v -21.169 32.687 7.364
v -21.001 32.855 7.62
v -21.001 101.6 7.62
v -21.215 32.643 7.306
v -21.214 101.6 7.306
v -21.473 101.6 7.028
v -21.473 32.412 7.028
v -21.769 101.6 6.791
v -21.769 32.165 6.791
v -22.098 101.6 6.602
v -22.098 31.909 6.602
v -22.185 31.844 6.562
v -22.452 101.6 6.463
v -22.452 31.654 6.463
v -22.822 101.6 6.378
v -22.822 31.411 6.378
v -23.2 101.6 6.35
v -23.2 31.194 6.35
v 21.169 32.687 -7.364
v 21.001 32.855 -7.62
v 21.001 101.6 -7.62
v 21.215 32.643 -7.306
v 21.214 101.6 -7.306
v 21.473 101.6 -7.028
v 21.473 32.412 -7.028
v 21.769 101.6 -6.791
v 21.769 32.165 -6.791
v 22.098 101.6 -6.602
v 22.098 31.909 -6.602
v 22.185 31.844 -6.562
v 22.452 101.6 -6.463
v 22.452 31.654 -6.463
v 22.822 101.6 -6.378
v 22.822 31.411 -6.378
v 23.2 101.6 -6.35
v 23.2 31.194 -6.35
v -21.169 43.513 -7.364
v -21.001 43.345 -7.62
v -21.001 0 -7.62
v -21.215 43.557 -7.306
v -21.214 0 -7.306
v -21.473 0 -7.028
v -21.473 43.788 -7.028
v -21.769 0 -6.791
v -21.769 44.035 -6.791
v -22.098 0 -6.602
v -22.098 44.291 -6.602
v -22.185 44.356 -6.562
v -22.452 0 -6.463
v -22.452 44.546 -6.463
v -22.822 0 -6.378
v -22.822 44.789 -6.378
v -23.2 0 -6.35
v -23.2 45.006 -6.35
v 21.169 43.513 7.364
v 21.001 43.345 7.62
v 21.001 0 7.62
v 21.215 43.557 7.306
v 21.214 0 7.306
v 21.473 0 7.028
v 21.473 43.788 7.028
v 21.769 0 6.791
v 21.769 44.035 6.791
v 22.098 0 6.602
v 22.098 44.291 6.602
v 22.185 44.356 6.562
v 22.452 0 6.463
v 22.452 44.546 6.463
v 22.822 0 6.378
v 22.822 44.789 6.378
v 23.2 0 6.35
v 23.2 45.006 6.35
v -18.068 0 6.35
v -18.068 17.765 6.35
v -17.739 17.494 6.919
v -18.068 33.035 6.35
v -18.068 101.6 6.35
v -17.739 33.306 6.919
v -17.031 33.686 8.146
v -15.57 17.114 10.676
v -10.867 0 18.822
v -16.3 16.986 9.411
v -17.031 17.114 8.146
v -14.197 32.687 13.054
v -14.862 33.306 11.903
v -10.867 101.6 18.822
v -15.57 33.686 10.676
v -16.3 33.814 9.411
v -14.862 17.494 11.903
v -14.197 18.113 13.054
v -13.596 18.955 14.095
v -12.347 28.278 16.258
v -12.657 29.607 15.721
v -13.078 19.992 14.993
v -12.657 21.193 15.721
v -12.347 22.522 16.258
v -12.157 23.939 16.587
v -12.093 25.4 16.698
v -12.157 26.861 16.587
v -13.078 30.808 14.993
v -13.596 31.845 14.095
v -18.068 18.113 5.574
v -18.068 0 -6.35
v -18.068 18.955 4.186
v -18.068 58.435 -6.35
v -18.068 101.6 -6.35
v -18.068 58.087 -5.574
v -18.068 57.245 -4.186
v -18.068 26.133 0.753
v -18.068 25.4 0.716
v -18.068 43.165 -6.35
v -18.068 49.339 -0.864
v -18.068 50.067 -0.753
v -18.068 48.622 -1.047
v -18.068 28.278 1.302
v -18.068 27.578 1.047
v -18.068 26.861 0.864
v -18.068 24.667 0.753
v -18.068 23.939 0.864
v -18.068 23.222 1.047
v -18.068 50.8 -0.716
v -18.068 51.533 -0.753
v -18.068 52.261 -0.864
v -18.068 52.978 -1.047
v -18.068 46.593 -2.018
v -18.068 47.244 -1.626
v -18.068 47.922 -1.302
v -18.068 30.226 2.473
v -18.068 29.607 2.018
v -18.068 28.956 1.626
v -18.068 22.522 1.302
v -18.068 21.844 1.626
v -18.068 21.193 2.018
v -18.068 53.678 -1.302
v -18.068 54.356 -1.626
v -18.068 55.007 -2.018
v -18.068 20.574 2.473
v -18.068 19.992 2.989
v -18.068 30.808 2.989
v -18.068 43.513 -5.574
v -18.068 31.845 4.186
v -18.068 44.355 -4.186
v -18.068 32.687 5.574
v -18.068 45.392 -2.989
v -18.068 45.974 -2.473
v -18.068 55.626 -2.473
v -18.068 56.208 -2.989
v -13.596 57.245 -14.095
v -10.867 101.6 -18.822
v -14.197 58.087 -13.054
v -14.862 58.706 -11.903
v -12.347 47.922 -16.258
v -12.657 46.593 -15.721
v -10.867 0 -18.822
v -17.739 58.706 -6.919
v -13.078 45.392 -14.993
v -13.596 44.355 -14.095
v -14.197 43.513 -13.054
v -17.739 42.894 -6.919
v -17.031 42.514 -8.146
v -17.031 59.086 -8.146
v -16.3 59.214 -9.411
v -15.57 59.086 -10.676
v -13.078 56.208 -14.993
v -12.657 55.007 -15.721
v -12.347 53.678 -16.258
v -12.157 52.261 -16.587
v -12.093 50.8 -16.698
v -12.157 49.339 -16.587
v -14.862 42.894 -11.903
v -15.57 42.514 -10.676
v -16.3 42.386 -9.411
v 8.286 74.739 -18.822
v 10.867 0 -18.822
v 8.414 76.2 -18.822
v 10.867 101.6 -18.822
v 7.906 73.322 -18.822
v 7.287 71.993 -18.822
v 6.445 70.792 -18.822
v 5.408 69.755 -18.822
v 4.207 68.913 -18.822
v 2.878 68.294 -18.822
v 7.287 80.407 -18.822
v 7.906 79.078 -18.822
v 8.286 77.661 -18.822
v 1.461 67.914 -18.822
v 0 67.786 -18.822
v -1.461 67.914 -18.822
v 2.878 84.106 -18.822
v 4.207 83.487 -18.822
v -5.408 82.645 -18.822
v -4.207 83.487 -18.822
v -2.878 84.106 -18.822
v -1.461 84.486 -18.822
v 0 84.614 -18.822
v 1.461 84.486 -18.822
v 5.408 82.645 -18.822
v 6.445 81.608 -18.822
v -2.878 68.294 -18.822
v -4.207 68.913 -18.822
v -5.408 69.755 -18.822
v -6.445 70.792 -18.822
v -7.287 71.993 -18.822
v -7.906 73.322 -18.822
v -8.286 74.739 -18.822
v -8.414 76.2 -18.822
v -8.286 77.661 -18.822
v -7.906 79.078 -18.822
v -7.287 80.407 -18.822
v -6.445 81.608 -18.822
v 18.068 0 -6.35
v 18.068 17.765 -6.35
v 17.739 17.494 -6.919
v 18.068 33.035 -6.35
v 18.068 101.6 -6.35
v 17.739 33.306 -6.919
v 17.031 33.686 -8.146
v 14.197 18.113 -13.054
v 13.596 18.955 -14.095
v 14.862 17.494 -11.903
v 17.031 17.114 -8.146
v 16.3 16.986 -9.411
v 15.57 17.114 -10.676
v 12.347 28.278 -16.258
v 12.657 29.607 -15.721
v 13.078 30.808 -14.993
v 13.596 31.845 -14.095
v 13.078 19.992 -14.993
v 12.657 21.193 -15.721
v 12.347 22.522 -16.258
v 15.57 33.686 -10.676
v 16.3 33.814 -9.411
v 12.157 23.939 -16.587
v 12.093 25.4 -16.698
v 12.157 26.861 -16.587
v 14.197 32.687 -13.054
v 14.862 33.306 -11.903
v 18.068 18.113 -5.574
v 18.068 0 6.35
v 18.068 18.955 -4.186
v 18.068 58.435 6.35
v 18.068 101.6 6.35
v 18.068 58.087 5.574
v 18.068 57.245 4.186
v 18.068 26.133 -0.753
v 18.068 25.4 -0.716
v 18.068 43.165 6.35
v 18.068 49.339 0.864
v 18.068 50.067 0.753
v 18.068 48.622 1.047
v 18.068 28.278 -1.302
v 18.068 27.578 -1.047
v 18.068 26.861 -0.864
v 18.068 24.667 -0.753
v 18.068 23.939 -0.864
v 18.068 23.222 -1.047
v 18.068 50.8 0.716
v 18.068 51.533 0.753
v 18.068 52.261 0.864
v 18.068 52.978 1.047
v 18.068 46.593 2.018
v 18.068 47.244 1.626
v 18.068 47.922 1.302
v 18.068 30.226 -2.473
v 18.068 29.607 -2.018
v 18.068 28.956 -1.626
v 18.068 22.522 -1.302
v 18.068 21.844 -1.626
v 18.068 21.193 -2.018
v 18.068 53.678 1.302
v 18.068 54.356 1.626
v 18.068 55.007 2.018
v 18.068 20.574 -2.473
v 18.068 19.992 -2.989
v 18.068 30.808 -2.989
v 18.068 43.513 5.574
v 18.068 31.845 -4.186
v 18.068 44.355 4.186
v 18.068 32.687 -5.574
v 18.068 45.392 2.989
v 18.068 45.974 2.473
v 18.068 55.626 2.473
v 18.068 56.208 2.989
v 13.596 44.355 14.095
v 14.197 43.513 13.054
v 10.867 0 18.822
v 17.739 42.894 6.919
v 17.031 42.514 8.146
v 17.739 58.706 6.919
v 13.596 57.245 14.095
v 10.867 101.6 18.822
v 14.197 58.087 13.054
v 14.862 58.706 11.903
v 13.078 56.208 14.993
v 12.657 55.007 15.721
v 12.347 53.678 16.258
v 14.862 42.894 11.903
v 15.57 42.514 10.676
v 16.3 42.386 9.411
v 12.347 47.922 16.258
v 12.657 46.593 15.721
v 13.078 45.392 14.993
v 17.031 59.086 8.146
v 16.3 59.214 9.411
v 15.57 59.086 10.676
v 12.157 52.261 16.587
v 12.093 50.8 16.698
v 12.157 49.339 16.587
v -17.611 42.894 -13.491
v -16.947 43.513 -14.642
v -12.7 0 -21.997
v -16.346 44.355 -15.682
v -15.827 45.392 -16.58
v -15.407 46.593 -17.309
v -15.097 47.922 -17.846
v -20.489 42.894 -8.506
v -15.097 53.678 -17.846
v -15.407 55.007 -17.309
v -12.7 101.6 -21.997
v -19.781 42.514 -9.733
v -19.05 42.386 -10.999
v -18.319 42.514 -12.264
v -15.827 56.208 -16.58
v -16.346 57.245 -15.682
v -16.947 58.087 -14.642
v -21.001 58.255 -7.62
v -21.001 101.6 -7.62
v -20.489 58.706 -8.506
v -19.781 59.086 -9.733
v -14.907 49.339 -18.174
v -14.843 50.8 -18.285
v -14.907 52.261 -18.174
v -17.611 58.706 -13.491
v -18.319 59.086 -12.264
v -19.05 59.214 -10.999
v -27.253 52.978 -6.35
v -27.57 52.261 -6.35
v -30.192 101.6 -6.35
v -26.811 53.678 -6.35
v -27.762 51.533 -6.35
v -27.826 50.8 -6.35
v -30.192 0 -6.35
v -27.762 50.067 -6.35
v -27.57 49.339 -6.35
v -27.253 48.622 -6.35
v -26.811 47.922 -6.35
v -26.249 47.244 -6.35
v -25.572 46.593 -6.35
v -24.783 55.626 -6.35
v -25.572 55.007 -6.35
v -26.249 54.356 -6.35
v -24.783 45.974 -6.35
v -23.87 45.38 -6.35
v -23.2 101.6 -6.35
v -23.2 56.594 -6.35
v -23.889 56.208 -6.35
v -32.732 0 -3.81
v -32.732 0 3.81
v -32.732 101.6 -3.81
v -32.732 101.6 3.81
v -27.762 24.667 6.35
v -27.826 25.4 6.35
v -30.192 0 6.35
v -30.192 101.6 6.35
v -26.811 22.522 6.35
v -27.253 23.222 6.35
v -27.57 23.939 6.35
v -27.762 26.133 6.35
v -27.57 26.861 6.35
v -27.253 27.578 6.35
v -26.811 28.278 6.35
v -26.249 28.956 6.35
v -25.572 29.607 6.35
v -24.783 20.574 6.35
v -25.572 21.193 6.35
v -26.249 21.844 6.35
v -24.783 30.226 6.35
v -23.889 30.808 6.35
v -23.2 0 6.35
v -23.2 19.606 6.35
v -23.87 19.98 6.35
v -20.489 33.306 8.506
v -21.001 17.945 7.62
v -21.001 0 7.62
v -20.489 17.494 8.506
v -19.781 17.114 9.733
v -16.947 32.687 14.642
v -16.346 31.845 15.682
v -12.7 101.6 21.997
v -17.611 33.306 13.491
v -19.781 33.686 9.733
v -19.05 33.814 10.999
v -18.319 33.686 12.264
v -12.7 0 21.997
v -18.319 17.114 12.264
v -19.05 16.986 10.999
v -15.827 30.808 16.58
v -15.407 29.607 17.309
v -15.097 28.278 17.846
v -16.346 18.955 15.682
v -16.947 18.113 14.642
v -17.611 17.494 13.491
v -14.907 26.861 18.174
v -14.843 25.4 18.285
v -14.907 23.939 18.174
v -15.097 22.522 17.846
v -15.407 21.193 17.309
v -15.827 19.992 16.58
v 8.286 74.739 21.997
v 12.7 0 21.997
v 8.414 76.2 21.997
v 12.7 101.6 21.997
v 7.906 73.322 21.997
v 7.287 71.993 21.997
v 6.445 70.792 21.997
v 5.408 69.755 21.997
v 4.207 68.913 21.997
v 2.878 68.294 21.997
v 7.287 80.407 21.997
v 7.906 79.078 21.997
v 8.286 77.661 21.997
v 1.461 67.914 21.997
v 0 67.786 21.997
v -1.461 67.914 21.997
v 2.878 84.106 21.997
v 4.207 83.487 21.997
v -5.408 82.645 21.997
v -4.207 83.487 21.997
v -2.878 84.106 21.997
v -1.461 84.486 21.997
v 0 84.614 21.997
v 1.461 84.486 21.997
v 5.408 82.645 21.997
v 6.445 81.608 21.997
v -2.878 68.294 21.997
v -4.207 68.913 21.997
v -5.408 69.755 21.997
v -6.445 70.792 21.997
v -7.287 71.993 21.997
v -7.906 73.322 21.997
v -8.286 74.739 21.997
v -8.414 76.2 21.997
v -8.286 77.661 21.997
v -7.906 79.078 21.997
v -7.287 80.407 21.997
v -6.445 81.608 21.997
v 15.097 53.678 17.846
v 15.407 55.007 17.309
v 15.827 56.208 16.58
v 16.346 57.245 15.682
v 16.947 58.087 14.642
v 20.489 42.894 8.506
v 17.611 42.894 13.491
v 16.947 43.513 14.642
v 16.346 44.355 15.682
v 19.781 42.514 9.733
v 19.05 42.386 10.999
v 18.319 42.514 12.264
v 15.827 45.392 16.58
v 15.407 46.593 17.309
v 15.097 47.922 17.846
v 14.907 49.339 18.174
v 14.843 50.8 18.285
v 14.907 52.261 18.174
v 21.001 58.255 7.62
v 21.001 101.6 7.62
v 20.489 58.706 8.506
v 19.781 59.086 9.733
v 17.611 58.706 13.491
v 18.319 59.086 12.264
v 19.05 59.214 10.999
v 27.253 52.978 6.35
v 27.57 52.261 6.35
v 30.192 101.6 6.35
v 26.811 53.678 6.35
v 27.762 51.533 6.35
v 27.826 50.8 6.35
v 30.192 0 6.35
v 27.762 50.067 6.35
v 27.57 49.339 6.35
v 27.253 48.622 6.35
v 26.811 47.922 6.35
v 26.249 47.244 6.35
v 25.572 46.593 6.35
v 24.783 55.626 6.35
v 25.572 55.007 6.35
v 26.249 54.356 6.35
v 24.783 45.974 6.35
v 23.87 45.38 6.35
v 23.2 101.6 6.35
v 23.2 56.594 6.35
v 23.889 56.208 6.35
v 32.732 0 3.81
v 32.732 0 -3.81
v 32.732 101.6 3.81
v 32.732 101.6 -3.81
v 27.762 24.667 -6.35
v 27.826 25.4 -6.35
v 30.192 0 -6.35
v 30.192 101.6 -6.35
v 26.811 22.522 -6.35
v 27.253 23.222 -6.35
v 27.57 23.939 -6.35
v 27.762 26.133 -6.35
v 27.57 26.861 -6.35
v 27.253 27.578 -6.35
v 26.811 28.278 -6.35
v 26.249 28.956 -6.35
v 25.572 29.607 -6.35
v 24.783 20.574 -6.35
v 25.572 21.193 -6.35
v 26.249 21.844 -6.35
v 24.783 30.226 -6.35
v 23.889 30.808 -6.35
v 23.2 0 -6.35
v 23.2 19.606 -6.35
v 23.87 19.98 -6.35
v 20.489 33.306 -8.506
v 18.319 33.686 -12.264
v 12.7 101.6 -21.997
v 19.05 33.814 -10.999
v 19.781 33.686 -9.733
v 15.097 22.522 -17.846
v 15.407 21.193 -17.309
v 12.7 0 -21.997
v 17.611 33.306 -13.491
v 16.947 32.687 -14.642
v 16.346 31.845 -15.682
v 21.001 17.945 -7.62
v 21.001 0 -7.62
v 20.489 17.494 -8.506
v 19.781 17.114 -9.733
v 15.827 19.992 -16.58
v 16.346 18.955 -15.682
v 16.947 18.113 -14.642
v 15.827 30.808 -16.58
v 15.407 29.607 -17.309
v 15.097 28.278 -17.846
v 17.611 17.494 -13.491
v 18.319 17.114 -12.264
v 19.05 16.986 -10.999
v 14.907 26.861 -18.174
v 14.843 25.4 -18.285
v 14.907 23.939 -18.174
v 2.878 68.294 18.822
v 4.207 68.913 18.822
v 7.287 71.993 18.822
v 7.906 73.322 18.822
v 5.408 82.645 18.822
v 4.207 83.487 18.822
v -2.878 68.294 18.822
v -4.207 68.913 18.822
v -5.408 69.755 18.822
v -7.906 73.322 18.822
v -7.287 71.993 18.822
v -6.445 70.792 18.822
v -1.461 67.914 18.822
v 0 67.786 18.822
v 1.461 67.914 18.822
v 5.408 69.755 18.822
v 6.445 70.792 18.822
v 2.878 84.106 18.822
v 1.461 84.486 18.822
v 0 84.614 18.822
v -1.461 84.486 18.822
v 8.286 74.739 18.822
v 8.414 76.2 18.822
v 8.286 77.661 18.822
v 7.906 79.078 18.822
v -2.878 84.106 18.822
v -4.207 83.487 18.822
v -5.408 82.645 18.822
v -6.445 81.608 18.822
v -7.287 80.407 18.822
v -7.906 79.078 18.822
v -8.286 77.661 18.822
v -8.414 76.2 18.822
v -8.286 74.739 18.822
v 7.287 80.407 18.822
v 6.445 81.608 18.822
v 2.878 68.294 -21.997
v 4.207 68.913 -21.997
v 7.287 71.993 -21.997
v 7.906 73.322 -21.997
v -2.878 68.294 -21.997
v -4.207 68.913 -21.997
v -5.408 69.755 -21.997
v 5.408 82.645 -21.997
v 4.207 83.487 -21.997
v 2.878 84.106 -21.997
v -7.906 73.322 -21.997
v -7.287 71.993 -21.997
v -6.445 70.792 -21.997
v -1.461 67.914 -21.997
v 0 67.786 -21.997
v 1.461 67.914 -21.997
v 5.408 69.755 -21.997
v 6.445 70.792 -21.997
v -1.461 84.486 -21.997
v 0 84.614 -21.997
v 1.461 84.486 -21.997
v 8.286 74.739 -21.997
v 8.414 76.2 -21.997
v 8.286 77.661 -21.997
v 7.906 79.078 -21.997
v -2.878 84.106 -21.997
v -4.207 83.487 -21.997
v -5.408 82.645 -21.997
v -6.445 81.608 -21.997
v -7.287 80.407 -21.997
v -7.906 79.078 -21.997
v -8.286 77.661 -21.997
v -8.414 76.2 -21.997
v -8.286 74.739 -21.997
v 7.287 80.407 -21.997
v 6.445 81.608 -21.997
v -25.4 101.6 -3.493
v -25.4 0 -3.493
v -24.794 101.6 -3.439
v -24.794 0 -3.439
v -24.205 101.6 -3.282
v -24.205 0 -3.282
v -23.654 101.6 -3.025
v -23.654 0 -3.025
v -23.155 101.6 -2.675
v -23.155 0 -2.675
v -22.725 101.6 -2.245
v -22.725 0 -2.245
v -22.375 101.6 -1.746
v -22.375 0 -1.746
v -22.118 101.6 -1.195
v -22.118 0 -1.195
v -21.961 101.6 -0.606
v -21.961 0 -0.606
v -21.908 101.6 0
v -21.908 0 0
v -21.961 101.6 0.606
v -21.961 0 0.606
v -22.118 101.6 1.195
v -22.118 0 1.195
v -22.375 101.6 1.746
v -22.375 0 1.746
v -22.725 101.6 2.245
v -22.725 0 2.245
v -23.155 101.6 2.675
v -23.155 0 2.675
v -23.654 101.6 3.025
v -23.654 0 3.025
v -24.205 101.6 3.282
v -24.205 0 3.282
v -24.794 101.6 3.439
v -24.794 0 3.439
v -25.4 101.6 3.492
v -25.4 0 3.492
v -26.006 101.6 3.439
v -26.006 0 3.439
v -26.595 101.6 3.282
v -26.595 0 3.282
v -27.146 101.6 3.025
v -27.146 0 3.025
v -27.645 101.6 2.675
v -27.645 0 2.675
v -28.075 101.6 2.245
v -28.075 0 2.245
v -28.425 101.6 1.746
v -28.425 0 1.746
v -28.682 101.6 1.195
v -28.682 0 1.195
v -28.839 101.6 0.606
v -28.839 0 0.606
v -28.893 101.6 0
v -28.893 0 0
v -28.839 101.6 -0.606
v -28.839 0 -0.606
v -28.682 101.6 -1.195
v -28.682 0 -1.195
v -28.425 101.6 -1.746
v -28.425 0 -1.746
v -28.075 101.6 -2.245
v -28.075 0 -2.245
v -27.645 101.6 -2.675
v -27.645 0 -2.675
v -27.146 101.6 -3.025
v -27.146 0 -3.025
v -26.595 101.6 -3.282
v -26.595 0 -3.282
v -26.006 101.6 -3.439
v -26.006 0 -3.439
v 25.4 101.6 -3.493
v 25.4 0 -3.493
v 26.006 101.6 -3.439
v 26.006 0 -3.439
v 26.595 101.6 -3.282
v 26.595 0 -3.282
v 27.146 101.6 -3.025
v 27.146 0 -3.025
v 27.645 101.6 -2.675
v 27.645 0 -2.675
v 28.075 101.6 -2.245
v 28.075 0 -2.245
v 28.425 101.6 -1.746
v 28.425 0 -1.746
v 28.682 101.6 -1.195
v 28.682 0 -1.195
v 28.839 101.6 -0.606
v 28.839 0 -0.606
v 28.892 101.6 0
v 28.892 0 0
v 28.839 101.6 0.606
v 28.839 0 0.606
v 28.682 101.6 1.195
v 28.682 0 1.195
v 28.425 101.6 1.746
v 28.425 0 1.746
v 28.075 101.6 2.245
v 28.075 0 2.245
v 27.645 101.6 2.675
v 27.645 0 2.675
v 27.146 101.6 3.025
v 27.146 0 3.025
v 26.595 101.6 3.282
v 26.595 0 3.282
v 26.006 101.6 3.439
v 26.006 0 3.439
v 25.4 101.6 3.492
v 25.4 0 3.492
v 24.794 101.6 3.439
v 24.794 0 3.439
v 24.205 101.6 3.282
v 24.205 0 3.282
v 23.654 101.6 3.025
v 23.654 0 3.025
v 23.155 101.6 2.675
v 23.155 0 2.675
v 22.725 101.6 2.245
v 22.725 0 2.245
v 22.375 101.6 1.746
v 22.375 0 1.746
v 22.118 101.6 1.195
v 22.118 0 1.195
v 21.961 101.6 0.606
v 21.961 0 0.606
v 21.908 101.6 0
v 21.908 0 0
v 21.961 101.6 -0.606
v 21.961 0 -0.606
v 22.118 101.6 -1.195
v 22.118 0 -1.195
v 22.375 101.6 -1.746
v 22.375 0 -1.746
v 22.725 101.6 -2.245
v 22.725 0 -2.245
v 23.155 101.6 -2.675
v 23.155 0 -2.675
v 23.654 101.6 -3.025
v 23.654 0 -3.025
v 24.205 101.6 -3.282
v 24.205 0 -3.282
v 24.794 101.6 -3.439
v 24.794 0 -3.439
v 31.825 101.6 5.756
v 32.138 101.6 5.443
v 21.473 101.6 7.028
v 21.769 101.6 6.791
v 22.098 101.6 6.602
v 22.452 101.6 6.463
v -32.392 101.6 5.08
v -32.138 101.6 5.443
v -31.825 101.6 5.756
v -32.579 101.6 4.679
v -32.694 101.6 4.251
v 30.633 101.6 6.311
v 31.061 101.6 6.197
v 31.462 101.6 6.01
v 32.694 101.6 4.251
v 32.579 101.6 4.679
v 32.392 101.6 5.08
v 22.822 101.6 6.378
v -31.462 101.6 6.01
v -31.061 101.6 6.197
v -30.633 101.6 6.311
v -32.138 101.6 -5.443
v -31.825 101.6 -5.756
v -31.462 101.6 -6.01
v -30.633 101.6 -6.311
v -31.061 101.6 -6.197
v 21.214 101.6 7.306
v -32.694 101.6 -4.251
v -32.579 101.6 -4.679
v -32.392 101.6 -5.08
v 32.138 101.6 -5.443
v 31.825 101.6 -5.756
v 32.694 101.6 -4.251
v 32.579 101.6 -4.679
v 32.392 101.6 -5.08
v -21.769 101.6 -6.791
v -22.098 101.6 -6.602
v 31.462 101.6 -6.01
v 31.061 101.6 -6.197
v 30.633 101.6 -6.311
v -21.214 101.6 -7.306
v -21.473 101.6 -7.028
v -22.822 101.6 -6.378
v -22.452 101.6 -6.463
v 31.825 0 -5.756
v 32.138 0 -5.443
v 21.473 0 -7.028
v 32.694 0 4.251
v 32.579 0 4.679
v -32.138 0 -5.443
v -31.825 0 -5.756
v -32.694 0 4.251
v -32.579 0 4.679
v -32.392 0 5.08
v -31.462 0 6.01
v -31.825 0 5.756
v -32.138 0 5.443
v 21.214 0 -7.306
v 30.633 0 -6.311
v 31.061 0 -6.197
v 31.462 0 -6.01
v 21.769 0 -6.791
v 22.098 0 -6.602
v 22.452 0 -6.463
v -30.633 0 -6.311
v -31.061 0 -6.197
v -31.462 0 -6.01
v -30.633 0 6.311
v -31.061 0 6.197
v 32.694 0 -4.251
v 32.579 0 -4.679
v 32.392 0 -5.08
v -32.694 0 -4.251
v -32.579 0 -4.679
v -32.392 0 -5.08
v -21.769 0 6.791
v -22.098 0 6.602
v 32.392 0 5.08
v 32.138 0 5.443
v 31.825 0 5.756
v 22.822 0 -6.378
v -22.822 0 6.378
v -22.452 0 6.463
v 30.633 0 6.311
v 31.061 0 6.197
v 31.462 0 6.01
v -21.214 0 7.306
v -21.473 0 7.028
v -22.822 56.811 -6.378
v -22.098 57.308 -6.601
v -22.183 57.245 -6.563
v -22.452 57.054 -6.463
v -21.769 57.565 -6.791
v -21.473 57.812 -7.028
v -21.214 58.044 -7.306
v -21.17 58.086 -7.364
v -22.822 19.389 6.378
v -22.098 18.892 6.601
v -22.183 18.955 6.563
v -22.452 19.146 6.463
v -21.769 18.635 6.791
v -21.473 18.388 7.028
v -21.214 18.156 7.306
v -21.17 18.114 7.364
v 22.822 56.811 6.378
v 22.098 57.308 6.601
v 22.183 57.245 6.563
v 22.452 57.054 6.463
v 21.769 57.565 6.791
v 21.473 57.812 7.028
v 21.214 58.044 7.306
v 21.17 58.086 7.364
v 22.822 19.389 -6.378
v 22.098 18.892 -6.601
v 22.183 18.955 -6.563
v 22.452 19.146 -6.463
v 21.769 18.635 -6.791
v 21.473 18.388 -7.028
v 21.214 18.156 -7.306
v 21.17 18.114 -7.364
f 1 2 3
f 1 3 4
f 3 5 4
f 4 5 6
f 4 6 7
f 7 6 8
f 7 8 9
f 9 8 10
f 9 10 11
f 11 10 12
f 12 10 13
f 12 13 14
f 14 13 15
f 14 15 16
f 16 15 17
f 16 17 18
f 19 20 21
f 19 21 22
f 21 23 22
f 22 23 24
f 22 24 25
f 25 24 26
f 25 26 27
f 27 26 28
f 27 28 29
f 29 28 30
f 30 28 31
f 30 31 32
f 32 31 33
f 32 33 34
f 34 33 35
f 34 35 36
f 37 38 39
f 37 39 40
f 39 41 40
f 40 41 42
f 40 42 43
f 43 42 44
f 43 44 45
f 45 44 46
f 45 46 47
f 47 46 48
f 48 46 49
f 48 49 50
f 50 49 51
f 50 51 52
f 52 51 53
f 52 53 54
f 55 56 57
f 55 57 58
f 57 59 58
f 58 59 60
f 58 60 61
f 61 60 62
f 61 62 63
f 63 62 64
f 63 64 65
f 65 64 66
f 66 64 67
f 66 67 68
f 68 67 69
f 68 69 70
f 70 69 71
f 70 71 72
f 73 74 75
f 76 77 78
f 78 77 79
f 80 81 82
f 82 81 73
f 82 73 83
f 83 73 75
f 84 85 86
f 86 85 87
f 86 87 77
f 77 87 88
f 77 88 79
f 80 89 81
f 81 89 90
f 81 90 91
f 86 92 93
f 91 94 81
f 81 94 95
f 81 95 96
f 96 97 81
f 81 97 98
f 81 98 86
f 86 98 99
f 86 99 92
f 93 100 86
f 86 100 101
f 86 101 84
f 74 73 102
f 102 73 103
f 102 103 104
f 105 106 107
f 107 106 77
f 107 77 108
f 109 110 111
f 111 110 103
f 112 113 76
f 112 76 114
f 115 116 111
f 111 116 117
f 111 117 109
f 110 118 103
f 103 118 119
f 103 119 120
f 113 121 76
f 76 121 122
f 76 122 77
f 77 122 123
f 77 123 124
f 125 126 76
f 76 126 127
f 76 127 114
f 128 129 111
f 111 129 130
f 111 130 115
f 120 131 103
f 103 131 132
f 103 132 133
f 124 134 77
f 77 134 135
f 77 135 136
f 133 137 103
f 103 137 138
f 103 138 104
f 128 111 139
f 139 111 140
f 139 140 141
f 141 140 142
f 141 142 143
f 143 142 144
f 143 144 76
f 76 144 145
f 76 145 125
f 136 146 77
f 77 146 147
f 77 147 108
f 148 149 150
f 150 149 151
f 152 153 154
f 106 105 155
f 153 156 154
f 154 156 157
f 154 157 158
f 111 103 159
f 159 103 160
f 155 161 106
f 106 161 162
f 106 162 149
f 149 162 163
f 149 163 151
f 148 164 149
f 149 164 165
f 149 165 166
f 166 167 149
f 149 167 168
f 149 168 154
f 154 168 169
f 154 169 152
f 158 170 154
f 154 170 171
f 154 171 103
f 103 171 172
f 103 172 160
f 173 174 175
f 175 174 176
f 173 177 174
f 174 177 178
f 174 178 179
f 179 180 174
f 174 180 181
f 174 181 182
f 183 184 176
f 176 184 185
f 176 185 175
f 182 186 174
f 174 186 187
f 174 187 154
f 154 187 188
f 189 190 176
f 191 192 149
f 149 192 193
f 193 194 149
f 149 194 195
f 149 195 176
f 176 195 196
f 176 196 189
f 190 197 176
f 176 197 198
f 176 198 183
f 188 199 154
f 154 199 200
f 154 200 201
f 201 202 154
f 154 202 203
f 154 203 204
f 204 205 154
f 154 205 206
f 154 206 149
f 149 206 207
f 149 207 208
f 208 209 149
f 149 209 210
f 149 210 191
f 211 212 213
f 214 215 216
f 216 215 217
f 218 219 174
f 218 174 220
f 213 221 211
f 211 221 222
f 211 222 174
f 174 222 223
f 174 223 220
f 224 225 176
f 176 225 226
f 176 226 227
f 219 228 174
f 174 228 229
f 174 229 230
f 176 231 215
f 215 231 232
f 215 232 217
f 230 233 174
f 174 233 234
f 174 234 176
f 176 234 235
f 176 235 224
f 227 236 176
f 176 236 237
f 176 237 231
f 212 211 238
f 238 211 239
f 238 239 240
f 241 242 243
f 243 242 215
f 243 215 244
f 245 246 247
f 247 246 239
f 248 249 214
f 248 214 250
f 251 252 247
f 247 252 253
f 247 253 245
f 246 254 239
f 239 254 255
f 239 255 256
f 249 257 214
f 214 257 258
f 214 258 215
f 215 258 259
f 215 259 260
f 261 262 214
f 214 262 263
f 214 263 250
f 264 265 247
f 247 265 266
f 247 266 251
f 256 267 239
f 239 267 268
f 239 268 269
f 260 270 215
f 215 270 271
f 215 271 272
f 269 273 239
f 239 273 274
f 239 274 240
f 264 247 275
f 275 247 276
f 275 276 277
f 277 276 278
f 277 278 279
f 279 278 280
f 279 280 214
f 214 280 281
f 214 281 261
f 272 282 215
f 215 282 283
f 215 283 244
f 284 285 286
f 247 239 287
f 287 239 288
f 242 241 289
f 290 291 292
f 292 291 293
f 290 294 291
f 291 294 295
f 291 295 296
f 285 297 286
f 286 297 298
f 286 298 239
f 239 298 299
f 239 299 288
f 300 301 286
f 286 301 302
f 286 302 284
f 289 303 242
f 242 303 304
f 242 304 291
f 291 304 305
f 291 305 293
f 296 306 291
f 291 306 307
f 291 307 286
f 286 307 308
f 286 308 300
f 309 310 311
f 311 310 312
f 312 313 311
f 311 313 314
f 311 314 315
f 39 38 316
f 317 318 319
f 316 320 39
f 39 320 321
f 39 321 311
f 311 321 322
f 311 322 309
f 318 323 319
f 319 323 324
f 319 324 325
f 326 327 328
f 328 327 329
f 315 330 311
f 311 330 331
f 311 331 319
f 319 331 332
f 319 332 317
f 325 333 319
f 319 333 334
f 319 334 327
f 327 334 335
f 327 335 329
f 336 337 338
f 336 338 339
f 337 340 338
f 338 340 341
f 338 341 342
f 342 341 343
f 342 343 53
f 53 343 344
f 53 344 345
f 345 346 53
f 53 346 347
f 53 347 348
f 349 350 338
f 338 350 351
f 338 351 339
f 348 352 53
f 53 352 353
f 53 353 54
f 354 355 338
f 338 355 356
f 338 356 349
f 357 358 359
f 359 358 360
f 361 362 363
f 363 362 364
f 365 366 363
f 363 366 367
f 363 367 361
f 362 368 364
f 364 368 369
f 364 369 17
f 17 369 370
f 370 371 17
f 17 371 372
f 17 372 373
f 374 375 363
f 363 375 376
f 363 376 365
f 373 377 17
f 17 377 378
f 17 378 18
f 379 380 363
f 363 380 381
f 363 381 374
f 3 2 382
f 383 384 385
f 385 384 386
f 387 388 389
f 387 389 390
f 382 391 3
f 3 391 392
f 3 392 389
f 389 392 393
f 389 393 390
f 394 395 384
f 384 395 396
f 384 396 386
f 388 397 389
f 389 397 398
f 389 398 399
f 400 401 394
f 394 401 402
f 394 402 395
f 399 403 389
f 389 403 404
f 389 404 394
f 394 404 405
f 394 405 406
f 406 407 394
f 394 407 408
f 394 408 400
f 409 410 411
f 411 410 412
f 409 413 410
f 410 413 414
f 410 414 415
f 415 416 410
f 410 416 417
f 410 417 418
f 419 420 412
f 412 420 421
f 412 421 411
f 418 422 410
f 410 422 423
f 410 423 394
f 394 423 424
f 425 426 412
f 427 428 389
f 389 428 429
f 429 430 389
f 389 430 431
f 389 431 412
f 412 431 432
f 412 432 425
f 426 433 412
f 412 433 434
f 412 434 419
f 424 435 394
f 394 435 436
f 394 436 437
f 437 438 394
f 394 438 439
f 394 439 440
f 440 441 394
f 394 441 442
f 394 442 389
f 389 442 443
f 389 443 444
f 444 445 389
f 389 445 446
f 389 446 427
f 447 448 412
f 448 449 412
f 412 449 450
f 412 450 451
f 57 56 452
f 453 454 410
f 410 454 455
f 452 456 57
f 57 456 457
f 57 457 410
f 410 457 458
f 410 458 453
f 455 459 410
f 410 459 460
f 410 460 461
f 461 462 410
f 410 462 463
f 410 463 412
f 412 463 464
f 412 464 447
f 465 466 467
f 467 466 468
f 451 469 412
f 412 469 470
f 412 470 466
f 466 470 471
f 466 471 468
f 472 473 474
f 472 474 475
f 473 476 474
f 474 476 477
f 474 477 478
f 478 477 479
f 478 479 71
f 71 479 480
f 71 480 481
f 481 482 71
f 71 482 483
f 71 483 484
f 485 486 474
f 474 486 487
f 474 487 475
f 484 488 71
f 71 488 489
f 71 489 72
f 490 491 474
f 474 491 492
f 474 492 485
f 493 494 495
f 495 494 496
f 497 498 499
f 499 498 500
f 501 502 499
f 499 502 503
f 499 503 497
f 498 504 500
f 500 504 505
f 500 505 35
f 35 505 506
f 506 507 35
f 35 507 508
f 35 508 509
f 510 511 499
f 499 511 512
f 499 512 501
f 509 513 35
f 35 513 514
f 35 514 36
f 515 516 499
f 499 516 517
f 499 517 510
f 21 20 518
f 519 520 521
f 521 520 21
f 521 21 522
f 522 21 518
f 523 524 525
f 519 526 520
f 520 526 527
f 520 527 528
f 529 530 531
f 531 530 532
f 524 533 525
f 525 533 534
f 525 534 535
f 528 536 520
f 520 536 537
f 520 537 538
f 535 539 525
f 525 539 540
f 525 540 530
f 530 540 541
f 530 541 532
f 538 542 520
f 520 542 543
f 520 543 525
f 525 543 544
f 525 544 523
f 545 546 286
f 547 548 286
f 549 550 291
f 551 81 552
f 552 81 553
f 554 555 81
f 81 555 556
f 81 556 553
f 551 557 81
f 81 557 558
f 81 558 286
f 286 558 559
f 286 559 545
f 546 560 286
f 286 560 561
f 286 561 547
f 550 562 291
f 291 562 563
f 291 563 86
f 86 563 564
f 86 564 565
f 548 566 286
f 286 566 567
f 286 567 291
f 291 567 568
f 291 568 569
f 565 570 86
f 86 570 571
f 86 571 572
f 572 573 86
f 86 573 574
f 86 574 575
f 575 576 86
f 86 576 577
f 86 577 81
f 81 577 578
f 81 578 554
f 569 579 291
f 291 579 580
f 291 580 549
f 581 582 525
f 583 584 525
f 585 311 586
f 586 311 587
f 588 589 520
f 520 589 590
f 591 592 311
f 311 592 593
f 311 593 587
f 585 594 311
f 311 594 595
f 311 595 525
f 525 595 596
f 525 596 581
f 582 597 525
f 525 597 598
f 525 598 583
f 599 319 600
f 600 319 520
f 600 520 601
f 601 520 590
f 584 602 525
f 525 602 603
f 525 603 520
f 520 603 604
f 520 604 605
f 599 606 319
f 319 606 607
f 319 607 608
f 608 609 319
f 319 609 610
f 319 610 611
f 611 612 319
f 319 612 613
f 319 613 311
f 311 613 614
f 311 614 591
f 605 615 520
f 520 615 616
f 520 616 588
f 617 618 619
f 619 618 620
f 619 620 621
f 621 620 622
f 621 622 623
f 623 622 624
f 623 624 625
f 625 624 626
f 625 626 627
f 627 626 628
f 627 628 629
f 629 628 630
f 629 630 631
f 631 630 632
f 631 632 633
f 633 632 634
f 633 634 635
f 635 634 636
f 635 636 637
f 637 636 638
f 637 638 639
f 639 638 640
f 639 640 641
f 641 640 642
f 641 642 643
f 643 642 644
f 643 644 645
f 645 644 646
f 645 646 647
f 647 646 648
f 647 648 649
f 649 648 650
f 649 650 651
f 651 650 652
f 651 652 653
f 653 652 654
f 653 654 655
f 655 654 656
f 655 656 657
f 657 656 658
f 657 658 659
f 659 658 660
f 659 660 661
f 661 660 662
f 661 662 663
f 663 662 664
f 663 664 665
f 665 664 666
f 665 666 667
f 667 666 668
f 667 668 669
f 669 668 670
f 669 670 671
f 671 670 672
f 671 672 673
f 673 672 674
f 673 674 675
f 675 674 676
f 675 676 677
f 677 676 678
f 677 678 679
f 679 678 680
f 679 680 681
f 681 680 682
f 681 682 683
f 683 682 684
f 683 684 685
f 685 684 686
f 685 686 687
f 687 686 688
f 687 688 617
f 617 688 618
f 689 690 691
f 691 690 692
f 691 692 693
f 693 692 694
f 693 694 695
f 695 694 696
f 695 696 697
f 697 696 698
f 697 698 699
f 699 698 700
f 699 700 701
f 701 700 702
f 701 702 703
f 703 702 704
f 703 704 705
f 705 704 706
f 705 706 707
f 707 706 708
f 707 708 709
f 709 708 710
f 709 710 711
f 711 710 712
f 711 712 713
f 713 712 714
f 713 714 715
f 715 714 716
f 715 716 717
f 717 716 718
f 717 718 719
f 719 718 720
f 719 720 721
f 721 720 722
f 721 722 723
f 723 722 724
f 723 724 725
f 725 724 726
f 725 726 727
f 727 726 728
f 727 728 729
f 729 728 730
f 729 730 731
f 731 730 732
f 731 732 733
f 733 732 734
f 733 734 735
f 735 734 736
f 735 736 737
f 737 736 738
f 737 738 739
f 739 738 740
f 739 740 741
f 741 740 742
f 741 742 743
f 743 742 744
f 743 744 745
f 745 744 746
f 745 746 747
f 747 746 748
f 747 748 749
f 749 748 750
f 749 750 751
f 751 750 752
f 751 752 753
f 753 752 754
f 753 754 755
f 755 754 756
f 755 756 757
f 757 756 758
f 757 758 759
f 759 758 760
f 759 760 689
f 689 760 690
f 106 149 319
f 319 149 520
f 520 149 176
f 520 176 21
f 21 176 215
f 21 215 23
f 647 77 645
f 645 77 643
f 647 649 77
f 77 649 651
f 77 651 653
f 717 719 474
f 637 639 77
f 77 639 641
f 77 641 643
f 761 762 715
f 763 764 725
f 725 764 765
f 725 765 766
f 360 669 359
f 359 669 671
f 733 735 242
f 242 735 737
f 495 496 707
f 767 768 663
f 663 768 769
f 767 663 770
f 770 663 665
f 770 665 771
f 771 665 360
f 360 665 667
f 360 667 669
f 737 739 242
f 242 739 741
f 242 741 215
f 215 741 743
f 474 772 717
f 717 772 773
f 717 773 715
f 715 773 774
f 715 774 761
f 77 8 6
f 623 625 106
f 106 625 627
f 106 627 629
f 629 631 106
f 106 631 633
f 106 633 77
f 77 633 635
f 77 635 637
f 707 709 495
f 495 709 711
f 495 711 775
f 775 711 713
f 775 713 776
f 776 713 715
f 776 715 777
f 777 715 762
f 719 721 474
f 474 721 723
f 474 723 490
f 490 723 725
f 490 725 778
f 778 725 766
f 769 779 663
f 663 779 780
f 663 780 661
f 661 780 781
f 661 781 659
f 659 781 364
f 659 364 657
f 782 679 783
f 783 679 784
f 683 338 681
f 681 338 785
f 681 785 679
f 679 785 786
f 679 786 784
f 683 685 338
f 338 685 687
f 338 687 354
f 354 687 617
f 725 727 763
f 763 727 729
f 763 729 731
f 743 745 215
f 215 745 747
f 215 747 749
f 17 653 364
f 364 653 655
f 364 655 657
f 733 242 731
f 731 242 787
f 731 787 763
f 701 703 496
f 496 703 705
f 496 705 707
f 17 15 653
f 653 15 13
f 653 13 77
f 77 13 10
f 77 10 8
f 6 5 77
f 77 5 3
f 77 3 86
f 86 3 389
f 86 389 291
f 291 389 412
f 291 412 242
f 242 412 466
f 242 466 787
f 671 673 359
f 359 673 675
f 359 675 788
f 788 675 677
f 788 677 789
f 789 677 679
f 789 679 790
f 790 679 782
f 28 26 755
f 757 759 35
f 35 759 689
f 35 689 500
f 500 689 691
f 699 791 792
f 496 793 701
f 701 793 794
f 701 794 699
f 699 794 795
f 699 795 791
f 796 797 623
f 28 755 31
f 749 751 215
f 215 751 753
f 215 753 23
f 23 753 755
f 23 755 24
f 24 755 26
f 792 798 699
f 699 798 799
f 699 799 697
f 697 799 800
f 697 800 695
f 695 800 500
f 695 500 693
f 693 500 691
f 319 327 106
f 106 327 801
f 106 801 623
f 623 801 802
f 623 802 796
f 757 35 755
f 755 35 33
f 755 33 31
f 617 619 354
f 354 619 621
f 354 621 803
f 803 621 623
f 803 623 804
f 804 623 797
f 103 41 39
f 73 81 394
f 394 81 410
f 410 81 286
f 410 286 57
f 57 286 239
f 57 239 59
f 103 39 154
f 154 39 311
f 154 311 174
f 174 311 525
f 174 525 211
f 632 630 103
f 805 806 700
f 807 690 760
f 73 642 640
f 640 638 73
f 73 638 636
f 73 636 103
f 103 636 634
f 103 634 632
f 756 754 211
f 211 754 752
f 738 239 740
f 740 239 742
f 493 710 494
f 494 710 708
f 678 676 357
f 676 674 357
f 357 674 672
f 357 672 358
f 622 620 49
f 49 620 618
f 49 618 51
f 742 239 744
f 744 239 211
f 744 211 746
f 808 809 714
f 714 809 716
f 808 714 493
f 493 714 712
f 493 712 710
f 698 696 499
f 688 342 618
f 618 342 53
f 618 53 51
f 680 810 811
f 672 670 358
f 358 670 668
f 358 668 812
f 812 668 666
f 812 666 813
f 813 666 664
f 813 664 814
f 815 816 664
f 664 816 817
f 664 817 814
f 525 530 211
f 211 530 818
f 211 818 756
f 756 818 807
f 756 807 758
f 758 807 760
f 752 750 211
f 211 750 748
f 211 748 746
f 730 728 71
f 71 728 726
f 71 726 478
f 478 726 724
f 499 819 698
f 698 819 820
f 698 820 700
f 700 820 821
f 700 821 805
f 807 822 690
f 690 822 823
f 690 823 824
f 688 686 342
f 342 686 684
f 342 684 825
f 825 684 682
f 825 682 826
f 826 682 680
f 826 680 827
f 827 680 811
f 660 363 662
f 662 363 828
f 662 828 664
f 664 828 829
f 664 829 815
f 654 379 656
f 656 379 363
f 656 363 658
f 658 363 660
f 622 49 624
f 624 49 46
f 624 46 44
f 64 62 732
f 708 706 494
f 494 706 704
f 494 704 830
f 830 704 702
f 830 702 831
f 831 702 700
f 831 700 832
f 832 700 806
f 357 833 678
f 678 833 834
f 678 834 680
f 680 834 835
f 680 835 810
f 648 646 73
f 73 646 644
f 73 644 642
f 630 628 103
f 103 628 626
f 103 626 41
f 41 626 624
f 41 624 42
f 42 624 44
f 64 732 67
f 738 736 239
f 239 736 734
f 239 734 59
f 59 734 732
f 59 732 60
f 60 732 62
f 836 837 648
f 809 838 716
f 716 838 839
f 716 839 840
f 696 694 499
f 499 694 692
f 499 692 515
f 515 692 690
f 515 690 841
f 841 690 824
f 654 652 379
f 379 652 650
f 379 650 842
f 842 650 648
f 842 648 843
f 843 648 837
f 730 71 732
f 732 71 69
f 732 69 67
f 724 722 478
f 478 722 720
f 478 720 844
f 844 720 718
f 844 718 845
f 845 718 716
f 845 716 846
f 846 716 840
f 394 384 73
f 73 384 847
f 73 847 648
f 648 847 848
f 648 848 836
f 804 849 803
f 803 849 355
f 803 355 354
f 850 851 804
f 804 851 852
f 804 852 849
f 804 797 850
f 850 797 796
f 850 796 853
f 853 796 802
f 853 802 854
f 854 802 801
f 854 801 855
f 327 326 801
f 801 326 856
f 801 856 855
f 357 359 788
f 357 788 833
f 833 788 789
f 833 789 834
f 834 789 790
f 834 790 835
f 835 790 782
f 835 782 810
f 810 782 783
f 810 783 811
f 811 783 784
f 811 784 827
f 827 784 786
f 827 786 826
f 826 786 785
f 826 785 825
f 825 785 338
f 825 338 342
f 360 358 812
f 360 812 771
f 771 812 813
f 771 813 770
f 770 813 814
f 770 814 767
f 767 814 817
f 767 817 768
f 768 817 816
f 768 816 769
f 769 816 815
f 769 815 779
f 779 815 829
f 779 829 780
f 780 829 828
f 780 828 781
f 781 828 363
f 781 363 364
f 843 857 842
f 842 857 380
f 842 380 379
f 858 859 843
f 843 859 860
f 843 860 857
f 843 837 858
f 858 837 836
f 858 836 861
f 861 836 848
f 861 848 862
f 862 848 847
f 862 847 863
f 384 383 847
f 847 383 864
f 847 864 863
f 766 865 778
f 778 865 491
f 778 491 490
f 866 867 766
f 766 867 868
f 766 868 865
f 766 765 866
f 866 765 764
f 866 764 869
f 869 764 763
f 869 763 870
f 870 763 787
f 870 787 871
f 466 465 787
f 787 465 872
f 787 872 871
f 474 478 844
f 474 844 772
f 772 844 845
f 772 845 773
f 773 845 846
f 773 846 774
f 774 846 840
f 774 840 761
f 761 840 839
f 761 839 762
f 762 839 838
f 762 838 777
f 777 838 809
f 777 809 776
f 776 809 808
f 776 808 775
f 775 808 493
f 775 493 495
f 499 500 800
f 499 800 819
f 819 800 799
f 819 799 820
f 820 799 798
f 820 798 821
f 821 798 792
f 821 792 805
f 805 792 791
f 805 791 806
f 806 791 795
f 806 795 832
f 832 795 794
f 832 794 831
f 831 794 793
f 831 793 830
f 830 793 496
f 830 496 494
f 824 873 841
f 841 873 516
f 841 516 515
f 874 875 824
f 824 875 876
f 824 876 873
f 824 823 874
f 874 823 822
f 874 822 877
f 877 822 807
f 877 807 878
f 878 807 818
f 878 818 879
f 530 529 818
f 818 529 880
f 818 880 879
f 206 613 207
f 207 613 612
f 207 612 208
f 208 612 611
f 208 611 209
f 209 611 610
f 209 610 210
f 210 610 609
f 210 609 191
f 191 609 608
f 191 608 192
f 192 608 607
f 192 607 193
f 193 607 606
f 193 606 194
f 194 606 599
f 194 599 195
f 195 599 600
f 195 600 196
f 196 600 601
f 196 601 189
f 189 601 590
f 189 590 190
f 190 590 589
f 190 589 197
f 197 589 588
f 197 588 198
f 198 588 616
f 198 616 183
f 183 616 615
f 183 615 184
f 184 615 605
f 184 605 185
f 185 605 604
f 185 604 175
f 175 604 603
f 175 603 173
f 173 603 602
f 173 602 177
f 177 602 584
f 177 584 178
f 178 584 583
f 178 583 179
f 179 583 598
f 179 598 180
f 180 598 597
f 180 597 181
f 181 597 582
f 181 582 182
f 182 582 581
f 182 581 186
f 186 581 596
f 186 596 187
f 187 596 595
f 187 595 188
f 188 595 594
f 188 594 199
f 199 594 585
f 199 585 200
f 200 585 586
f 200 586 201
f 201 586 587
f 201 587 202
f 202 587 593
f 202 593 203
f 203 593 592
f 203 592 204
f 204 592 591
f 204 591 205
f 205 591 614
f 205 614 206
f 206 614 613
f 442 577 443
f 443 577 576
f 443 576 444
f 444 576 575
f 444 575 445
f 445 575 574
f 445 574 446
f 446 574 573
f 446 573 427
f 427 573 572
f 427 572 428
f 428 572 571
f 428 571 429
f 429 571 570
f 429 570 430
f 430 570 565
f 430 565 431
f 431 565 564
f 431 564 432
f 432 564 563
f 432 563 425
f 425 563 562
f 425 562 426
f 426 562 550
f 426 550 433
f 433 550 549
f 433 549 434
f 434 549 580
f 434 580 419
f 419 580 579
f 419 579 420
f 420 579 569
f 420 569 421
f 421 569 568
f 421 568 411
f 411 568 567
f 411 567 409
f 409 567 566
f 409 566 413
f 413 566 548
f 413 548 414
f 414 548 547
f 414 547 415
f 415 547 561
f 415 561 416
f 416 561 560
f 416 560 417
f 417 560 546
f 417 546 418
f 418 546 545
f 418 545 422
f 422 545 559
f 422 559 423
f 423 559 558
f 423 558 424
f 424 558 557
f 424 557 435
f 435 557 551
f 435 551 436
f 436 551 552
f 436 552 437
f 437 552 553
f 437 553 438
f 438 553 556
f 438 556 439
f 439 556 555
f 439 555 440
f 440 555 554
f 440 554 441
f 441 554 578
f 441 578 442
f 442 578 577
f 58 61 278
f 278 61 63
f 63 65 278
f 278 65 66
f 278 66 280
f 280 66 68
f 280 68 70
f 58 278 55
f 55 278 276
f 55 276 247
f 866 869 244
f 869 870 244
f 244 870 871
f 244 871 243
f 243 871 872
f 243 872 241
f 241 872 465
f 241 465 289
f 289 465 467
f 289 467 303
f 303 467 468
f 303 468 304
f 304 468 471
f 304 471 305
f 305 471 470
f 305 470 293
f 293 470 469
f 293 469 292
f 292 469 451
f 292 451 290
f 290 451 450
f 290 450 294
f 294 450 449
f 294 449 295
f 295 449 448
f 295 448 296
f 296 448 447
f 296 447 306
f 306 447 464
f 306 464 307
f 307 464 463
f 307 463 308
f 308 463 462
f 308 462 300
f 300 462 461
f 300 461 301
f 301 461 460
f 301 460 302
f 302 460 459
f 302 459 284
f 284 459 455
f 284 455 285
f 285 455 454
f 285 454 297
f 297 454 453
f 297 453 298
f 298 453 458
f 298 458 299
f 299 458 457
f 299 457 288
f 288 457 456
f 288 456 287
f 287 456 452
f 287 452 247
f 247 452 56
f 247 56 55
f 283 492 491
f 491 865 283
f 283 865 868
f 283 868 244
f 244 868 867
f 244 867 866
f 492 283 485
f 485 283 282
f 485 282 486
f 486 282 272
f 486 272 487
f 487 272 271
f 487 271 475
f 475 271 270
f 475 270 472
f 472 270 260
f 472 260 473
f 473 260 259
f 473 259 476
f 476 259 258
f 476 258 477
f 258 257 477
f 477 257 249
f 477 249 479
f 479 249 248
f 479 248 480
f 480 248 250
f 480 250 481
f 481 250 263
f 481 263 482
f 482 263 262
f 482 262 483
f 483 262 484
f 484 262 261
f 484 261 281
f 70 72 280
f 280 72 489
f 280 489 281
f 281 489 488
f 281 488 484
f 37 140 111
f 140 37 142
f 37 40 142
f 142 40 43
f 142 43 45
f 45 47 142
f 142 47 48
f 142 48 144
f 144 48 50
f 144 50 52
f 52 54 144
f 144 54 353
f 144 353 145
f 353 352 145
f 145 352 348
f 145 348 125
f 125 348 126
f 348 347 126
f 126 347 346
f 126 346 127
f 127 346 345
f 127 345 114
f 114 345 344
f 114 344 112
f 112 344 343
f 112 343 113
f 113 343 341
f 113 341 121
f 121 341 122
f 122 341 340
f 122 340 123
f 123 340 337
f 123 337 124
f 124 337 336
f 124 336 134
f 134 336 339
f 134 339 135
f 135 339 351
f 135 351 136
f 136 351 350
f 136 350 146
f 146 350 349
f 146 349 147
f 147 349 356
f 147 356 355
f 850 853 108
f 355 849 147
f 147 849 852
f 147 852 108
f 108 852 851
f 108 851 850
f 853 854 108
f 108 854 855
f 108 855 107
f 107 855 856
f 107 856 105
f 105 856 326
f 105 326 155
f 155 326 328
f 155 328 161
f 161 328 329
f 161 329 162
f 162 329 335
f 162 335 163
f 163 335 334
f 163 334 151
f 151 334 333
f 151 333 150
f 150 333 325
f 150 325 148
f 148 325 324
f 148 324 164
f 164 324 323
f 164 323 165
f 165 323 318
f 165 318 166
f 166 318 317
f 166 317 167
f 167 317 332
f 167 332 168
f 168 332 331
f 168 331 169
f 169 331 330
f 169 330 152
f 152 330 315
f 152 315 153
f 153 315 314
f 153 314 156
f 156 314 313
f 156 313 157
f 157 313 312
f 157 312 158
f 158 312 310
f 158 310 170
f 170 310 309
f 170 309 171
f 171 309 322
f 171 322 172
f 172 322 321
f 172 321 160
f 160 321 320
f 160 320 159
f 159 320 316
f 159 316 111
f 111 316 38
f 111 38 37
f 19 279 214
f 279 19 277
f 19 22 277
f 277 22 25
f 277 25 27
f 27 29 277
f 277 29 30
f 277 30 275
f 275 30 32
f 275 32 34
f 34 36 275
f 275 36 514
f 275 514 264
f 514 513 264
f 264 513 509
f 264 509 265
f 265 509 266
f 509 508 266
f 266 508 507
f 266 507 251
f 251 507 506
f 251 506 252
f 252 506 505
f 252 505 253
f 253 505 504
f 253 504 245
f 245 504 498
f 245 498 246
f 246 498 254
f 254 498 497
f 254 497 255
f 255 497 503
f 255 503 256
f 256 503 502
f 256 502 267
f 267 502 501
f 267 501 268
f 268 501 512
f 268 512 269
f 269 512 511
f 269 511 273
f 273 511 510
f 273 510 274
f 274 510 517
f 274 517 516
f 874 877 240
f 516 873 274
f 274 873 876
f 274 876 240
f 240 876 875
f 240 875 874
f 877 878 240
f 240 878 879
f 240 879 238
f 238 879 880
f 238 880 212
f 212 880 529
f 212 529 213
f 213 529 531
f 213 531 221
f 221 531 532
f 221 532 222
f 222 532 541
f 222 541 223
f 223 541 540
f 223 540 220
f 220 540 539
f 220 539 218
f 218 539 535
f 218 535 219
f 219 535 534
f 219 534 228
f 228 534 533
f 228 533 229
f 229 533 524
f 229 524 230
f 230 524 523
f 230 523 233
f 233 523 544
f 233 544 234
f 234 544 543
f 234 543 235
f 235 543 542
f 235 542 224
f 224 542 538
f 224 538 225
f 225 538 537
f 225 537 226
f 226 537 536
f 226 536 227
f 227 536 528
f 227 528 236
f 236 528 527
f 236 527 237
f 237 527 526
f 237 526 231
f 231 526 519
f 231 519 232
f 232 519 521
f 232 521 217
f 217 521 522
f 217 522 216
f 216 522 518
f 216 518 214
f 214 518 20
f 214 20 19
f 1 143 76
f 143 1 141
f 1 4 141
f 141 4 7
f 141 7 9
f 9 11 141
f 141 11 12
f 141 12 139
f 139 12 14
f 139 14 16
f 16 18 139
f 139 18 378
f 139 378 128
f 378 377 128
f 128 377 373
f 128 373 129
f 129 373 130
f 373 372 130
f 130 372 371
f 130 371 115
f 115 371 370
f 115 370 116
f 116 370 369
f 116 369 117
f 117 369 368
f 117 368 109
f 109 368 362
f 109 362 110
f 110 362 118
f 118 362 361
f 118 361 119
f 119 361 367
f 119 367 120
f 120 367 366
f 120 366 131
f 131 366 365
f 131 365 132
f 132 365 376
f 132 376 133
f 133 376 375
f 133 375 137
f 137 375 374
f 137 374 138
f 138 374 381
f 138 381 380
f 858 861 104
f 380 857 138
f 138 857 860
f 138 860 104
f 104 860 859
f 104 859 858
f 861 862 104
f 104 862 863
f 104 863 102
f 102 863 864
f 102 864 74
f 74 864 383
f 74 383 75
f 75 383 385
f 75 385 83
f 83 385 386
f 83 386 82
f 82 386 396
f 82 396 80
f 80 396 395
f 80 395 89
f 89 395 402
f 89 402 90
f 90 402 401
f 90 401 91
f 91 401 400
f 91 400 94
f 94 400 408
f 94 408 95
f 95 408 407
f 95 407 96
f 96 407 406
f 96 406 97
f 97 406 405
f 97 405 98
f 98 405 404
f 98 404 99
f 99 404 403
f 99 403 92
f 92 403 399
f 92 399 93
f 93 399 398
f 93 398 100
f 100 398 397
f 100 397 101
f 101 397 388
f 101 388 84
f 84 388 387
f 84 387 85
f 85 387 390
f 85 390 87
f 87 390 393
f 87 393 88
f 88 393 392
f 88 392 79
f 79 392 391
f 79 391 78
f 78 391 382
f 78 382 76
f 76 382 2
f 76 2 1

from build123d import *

# Parameters (mm, degrees)
BOSS_EXTRUDE1_DEPTH      = 101.6
FILLET1_R                = 2.54
SKETCH11_R               = 8.41375
CUT_EXTRUDE8_DEPTH       = 1
CUT_EXTRUDE8_DEPTH_BACK  = 44.994090512
SKETCH12_R               = 8.41375
CUT_EXTRUDE9_DEPTH       = 18.348522628
CUT_EXTRUDE9_DEPTH_BACK  = 62.34261314
SKETCH13_R               = 8.41375
CUT_EXTRUDE10_DEPTH      = 18.348522628
CUT_EXTRUDE10_DEPTH_BACK = 62.34261314


with BuildPart() as part:
    # Sketch2 → Boss-Extrude1 (new body)
    with BuildSketch(Plane(origin=(0, 0, 0), x_dir=(1, 0, 0), z_dir=(0, 1, 0))):
        with BuildLine():
            Line((-23.65375, 3.024593723), (-21.733825791, 6.35))
            Line((-21.733825791, 6.35), (-32.732348419, 6.35))
            Line((-32.732348419, 6.35), (-32.732348419, -6.35))
            Line((-32.732348419, -6.35), (-21.733825791, -6.35))
            Line((-21.733825791, -6.35), (-23.65375, -3.024593723))
            ThreePointArc((-23.65375, -3.024593723), (-28.8925, 0), (-23.65375, 3.024593723))
        make_face()
        with BuildLine():
            Line((32.732348419, 6.35), (21.733825791, 6.35))
            Line((21.733825791, 6.35), (23.65375, 3.024593723))
            ThreePointArc((23.65375, 3.024593723), (27.14625, 3.024593723), (28.8925, 0))
            ThreePointArc((28.8925, 0), (27.14625, -3.024593723), (23.65375, -3.024593723))
            Line((23.65375, -3.024593723), (21.733825791, -6.35))
            Line((21.733825791, -6.35), (32.732348419, -6.35))
            Line((32.732348419, -6.35), (32.732348419, 6.35))
        make_face()
        Polygon((12.7, 21.997045256), (-12.7, 21.997045256), (-21.733825791, 6.35), (-18.067651581, 6.35), (-10.866912895, 18.822045256), (10.866912895, 18.822045256), (18.067651581, 6.35), (21.733825791, 6.35), align=None)
        Polygon((-10.866912895, -18.822045256), (-18.067651581, -6.35), (-21.733825791, -6.35), (-12.7, -21.997045256), (12.7, -21.997045256), (21.733825791, -6.35), (18.067651581, -6.35), (10.866912895, -18.822045256), align=None)
        with BuildLine():
            Line((-18.067651581, 6.35), (-21.733825791, 6.35))
            Line((-21.733825791, 6.35), (-23.65375, 3.024593723))
            ThreePointArc((-23.65375, 3.024593723), (-22.375406277, 1.74625), (-21.9075, 0))
            ThreePointArc((-21.9075, 0), (-22.375406277, -1.74625), (-23.65375, -3.024593723))
            Line((-23.65375, -3.024593723), (-21.733825791, -6.35))
            Line((-21.733825791, -6.35), (-18.067651581, -6.35))
            Line((-18.067651581, -6.35), (-21.733825791, 0))
            Line((-21.733825791, 0), (-18.067651581, 6.35))
        make_face()
        Polygon((-18.067651581, -6.35), (-18.067651581, 6.35), (-21.733825791, 0), align=None)
        with BuildLine():
            Line((23.65375, 3.024593723), (21.733825791, 6.35))
            Line((21.733825791, 6.35), (18.067651581, 6.35))
            Line((18.067651581, 6.35), (21.733825791, 0))
            Line((21.733825791, 0), (18.067651581, -6.35))
            Line((18.067651581, -6.35), (21.733825791, -6.35))
            Line((21.733825791, -6.35), (23.65375, -3.024593723))
            ThreePointArc((23.65375, -3.024593723), (21.9075, 0), (23.65375, 3.024593723))
        make_face()
        Polygon((21.733825791, 0), (18.067651581, 6.35), (18.067651581, -6.35), align=None)
    extrude(amount=BOSS_EXTRUDE1_DEPTH)

    # Fillet1
    fillet1_edges = [part.edges().sort_by_distance(p)[0] for p in [
        (21.733825791, 50.8, -6.35),
        (32.732348419, 50.8, -6.35),
        (32.732348419, 50.8, 6.35),
        (21.733825791, 50.8, 6.35),
        (-21.733825791, 50.8, 6.35),
        (-32.732348419, 50.8, 6.35),
        (-32.732348419, 50.8, -6.35),
        (-21.733825791, 50.8, -6.35),
    ]]
    fillet(fillet1_edges, radius=FILLET1_R)

    # Sketch11 → Cut-Extrude8 (cut, two sides)
    with BuildSketch(Plane(origin=(0, 0, -21.997045256), x_dir=(-1, 0, 0), z_dir=(0, 0, -1))) as cut_extrude8_sk:
        with Locations((0, 76.2)):
            Circle(SKETCH11_R)
    extrude(amount=CUT_EXTRUDE8_DEPTH, mode=Mode.SUBTRACT)
    extrude(cut_extrude8_sk.sketch, amount=-CUT_EXTRUDE8_DEPTH_BACK, mode=Mode.SUBTRACT)

    # Sketch12 → Cut-Extrude9 (cut, two sides)
    with BuildSketch(Plane(origin=(-19.05, 0, -10.998522628), x_dir=(-0.5, 0, 0.866025404), z_dir=(-0.866025404, 0, -0.5))) as cut_extrude9_sk:
        with Locations((0, 50.8)):
            Circle(SKETCH12_R)
    extrude(amount=CUT_EXTRUDE9_DEPTH, mode=Mode.SUBTRACT)
    extrude(cut_extrude9_sk.sketch, amount=-CUT_EXTRUDE9_DEPTH_BACK, mode=Mode.SUBTRACT)

    # Sketch13 → Cut-Extrude10 (cut, two sides)
    with BuildSketch(Plane(origin=(19.05, 0, -10.998522628), x_dir=(-0.5, 0, -0.866025404), z_dir=(0.866025404, 0, -0.5))) as cut_extrude10_sk:
        with Locations((0, 25.4)):
            Circle(SKETCH13_R)
    extrude(amount=CUT_EXTRUDE10_DEPTH, mode=Mode.SUBTRACT)
    extrude(cut_extrude10_sk.sketch, amount=-CUT_EXTRUDE10_DEPTH_BACK, mode=Mode.SUBTRACT)


solid = part.part
